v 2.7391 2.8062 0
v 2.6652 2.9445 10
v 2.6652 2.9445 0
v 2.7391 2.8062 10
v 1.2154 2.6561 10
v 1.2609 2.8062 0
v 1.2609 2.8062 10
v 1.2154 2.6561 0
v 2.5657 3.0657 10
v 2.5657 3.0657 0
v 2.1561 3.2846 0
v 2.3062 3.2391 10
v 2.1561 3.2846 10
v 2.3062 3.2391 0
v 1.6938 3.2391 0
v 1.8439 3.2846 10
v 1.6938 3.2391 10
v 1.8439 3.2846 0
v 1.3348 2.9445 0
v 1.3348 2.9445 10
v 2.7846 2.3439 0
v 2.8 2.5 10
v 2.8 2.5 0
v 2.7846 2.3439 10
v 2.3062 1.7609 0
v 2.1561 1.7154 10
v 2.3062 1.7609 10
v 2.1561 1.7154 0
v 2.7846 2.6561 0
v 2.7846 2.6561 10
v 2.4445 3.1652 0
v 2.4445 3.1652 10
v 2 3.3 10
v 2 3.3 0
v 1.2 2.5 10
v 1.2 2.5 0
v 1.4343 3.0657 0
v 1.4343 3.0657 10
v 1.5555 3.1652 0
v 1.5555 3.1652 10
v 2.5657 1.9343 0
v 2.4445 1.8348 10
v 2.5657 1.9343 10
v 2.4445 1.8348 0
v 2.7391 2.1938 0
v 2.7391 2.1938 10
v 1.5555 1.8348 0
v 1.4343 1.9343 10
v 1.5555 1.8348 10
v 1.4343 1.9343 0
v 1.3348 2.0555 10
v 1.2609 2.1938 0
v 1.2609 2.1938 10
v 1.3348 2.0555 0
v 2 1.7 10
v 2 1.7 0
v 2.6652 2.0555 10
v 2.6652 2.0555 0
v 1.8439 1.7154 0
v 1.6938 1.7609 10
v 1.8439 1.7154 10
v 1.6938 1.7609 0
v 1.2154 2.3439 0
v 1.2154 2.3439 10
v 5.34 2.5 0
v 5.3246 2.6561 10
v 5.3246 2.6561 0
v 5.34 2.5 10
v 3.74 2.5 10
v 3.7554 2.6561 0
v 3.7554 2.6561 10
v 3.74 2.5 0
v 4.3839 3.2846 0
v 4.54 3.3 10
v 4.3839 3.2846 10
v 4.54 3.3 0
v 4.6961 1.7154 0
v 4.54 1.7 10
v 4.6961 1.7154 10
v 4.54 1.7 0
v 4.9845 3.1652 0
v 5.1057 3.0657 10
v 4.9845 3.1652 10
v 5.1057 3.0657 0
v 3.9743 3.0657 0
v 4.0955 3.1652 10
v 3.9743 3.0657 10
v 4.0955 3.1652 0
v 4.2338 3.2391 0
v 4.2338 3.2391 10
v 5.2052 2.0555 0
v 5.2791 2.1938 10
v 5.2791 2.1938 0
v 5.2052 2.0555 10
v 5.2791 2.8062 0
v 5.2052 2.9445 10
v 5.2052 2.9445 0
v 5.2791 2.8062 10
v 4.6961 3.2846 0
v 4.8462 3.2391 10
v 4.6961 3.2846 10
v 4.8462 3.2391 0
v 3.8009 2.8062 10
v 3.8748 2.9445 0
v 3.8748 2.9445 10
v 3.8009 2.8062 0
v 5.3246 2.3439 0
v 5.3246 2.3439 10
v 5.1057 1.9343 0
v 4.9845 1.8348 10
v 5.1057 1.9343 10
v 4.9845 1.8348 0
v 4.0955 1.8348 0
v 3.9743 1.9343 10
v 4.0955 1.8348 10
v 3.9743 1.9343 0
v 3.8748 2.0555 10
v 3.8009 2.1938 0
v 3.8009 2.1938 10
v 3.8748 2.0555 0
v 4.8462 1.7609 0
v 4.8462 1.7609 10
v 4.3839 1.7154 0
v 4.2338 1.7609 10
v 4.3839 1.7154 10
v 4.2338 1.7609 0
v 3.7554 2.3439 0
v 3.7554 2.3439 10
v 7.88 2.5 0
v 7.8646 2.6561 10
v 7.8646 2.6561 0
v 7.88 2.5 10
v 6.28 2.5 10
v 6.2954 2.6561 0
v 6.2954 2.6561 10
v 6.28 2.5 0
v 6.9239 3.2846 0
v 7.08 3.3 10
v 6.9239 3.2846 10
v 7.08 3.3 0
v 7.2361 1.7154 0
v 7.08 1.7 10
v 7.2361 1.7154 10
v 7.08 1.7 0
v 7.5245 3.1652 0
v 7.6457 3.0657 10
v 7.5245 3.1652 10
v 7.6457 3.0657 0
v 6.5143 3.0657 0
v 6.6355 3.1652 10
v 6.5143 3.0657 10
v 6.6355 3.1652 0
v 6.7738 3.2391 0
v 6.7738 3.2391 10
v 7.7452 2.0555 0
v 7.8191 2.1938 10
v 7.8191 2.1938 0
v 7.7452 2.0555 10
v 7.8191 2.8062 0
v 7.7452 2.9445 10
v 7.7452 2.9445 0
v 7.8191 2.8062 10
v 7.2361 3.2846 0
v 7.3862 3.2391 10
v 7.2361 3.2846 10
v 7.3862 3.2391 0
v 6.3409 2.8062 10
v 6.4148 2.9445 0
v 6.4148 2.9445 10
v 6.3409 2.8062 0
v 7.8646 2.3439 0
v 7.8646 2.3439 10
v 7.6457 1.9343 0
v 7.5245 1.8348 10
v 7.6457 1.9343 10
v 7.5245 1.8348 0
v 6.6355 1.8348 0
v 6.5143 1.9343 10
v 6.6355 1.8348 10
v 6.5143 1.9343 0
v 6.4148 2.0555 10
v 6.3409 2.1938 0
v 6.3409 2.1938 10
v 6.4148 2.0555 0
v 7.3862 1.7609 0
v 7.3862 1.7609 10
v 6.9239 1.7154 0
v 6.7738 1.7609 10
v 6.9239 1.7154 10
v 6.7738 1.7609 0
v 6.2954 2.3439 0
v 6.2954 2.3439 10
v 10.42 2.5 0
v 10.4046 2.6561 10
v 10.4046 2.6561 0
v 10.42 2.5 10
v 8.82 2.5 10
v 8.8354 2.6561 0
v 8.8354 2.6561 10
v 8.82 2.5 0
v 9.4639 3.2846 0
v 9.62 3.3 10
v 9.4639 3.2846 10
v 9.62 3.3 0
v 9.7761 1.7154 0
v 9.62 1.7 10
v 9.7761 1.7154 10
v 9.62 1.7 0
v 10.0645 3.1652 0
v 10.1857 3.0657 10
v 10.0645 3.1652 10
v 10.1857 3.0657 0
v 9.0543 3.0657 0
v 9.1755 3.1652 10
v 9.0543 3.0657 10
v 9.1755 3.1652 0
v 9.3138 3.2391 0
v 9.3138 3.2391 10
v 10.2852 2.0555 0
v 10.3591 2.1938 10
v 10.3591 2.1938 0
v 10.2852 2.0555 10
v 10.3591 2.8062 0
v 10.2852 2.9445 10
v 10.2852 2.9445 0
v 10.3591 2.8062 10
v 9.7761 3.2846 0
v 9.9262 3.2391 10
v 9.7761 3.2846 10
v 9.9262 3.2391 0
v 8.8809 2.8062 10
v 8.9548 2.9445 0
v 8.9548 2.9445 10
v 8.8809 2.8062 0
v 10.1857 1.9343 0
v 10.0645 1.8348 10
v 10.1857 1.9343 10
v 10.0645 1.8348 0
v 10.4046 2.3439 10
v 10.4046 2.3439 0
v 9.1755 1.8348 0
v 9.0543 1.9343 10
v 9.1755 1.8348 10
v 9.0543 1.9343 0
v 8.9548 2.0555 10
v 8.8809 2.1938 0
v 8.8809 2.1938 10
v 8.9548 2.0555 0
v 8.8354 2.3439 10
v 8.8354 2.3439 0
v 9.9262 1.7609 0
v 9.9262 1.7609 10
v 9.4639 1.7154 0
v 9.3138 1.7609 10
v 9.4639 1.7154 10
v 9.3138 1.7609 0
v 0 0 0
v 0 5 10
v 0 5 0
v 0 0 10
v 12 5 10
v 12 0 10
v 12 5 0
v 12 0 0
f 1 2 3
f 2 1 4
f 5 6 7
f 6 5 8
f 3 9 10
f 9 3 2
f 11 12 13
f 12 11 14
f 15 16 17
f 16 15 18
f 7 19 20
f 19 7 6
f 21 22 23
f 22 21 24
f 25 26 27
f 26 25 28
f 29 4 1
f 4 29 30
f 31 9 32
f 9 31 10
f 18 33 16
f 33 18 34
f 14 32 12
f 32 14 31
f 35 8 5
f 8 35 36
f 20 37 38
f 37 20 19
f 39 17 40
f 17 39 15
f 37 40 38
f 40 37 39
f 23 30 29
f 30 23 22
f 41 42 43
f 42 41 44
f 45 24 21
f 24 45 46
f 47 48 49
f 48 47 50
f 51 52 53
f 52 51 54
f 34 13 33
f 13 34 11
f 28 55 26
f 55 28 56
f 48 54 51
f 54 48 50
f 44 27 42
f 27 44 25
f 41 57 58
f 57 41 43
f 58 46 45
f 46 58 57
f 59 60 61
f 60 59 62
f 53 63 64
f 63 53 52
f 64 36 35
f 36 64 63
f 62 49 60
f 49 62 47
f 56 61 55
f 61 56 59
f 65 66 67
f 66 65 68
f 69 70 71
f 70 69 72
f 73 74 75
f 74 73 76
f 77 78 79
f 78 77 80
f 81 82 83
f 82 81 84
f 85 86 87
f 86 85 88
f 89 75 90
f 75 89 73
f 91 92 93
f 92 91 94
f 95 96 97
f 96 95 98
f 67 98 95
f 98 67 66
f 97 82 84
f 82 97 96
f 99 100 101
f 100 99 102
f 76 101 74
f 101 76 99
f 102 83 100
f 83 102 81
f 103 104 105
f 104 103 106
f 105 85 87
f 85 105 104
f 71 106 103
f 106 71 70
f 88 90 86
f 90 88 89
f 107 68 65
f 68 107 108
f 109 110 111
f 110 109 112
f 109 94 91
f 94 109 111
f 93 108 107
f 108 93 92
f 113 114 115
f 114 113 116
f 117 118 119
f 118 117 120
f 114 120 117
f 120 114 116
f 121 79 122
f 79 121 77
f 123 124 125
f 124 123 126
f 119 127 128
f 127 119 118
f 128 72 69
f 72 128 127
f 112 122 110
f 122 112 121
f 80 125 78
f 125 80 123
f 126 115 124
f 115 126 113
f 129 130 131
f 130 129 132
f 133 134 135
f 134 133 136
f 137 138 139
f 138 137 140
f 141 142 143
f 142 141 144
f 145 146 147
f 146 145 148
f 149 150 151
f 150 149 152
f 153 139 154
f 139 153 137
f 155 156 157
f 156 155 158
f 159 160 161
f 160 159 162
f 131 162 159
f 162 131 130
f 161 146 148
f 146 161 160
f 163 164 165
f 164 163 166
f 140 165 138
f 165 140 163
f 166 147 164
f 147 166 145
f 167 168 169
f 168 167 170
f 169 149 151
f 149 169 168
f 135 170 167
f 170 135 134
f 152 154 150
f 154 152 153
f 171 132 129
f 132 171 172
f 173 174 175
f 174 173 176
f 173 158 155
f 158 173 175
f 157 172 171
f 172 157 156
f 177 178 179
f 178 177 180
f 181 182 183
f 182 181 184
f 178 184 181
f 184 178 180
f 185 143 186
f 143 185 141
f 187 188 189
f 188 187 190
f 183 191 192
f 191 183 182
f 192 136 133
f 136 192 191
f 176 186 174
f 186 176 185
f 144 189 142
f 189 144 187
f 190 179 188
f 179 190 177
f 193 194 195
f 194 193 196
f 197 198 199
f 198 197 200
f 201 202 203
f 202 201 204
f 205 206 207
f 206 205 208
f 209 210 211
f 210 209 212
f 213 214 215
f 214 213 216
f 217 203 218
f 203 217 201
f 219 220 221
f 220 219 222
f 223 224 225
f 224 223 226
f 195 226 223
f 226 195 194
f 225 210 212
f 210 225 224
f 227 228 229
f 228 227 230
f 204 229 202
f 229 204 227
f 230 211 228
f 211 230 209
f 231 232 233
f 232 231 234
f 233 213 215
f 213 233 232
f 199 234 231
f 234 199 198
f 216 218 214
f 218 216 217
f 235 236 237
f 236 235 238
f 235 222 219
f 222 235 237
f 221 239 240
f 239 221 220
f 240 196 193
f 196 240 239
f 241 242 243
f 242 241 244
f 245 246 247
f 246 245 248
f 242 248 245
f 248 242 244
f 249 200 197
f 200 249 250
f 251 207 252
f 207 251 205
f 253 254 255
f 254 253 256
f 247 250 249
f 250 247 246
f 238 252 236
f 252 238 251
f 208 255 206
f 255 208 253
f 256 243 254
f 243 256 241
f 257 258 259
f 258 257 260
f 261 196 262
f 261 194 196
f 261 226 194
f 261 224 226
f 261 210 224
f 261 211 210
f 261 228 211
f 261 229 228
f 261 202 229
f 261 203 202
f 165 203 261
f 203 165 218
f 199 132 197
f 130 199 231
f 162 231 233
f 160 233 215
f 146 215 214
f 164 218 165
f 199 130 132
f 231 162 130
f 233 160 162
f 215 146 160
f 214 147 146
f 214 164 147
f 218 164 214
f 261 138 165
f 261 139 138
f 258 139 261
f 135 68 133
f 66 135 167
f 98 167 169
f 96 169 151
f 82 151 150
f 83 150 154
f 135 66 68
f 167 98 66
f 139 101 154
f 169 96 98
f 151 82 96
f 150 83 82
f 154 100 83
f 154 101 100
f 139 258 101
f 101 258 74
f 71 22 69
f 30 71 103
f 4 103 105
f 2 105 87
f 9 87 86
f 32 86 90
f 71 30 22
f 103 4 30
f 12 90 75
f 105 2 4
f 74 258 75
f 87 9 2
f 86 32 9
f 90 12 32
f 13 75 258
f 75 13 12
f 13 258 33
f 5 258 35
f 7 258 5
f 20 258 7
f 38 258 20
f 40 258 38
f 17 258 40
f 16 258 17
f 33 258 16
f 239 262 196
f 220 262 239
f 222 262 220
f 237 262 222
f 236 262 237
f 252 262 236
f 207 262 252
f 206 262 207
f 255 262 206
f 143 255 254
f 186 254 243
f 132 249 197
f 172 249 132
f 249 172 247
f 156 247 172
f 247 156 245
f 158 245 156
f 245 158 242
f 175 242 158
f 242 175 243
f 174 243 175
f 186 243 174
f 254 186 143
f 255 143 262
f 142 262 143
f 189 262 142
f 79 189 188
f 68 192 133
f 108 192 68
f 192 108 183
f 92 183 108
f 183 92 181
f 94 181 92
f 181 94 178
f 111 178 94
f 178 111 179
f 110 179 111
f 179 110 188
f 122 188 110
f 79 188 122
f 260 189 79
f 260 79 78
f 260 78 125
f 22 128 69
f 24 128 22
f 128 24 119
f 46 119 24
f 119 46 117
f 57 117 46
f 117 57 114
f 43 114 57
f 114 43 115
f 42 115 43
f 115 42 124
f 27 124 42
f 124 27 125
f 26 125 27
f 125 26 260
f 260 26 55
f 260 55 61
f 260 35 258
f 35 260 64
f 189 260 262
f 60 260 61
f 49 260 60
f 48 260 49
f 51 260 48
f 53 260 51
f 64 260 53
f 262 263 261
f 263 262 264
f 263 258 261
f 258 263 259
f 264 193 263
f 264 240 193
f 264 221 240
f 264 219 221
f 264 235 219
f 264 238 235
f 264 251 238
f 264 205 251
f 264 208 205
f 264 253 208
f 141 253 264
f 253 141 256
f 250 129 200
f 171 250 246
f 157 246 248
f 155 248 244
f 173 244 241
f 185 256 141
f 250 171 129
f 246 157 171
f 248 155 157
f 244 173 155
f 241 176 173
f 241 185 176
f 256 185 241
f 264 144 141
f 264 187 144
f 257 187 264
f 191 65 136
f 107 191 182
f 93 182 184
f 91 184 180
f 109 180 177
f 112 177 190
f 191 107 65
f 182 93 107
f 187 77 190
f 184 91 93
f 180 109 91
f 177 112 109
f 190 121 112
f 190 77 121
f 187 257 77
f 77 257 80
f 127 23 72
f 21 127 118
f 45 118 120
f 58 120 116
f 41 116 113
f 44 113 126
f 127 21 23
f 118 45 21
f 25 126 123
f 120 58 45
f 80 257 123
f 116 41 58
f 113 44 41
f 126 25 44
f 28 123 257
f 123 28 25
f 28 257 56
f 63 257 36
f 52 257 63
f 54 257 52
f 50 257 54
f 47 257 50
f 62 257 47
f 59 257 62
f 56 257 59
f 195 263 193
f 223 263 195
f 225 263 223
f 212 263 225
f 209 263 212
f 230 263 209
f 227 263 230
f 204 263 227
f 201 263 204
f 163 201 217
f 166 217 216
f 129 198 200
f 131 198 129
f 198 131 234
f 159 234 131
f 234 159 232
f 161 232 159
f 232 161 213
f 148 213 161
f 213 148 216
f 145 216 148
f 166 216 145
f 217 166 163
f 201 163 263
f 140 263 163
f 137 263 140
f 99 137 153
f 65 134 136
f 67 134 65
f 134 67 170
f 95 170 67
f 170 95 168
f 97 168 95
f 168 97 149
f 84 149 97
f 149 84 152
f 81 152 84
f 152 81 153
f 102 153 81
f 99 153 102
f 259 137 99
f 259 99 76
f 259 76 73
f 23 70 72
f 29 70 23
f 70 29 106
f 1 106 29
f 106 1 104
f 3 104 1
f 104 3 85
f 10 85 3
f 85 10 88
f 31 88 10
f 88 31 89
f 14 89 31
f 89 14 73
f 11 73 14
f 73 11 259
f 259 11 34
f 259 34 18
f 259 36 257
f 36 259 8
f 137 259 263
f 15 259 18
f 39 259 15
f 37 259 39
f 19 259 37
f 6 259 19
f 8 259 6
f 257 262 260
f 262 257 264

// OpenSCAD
$fn = 32;

difference() {
    cube([12, 5, 10]);

    translate([2, 5/2, -1]) {     
        for(offset = [0:3]) {
            translate([offset * 2.54, 0, 0])
                cylinder(d = 1.6, h = 20);
        }
    }
}
